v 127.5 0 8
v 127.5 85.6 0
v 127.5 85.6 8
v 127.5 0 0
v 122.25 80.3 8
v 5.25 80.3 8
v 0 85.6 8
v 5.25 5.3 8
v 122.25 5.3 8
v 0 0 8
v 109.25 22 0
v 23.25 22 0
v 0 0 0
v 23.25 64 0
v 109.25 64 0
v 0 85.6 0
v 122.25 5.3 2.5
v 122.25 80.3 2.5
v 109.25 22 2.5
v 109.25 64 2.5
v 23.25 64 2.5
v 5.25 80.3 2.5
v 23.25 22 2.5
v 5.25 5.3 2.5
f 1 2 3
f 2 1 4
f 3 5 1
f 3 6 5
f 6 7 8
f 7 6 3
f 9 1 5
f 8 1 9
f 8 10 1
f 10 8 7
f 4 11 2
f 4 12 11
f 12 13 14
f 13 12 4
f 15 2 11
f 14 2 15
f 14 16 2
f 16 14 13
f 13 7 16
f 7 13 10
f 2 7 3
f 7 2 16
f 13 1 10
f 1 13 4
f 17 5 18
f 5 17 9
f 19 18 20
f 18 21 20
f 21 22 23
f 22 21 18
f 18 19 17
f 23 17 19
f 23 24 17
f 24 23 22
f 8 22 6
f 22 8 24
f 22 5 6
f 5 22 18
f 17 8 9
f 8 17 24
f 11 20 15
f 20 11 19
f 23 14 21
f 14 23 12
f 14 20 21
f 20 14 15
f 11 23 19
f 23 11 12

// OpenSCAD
/* V1, too big by about .5 mm in x & y
difference() {
    cube([128, 86, 8]);
    translate([3.5, 2, 2.5])
        cube([121, 82, 8]);
    translate([13.5, 12, -.05])
        cube([101, 62, 8.1]);
}
*/
difference() {
    cube([127.5, 85.6, 8]);
    translate([5.25, 5.3, 2.5])
        cube([117, 75, 8]);
    translate([23.25, 22, -.05])
        cube([86, 42, 8.1]);
}
